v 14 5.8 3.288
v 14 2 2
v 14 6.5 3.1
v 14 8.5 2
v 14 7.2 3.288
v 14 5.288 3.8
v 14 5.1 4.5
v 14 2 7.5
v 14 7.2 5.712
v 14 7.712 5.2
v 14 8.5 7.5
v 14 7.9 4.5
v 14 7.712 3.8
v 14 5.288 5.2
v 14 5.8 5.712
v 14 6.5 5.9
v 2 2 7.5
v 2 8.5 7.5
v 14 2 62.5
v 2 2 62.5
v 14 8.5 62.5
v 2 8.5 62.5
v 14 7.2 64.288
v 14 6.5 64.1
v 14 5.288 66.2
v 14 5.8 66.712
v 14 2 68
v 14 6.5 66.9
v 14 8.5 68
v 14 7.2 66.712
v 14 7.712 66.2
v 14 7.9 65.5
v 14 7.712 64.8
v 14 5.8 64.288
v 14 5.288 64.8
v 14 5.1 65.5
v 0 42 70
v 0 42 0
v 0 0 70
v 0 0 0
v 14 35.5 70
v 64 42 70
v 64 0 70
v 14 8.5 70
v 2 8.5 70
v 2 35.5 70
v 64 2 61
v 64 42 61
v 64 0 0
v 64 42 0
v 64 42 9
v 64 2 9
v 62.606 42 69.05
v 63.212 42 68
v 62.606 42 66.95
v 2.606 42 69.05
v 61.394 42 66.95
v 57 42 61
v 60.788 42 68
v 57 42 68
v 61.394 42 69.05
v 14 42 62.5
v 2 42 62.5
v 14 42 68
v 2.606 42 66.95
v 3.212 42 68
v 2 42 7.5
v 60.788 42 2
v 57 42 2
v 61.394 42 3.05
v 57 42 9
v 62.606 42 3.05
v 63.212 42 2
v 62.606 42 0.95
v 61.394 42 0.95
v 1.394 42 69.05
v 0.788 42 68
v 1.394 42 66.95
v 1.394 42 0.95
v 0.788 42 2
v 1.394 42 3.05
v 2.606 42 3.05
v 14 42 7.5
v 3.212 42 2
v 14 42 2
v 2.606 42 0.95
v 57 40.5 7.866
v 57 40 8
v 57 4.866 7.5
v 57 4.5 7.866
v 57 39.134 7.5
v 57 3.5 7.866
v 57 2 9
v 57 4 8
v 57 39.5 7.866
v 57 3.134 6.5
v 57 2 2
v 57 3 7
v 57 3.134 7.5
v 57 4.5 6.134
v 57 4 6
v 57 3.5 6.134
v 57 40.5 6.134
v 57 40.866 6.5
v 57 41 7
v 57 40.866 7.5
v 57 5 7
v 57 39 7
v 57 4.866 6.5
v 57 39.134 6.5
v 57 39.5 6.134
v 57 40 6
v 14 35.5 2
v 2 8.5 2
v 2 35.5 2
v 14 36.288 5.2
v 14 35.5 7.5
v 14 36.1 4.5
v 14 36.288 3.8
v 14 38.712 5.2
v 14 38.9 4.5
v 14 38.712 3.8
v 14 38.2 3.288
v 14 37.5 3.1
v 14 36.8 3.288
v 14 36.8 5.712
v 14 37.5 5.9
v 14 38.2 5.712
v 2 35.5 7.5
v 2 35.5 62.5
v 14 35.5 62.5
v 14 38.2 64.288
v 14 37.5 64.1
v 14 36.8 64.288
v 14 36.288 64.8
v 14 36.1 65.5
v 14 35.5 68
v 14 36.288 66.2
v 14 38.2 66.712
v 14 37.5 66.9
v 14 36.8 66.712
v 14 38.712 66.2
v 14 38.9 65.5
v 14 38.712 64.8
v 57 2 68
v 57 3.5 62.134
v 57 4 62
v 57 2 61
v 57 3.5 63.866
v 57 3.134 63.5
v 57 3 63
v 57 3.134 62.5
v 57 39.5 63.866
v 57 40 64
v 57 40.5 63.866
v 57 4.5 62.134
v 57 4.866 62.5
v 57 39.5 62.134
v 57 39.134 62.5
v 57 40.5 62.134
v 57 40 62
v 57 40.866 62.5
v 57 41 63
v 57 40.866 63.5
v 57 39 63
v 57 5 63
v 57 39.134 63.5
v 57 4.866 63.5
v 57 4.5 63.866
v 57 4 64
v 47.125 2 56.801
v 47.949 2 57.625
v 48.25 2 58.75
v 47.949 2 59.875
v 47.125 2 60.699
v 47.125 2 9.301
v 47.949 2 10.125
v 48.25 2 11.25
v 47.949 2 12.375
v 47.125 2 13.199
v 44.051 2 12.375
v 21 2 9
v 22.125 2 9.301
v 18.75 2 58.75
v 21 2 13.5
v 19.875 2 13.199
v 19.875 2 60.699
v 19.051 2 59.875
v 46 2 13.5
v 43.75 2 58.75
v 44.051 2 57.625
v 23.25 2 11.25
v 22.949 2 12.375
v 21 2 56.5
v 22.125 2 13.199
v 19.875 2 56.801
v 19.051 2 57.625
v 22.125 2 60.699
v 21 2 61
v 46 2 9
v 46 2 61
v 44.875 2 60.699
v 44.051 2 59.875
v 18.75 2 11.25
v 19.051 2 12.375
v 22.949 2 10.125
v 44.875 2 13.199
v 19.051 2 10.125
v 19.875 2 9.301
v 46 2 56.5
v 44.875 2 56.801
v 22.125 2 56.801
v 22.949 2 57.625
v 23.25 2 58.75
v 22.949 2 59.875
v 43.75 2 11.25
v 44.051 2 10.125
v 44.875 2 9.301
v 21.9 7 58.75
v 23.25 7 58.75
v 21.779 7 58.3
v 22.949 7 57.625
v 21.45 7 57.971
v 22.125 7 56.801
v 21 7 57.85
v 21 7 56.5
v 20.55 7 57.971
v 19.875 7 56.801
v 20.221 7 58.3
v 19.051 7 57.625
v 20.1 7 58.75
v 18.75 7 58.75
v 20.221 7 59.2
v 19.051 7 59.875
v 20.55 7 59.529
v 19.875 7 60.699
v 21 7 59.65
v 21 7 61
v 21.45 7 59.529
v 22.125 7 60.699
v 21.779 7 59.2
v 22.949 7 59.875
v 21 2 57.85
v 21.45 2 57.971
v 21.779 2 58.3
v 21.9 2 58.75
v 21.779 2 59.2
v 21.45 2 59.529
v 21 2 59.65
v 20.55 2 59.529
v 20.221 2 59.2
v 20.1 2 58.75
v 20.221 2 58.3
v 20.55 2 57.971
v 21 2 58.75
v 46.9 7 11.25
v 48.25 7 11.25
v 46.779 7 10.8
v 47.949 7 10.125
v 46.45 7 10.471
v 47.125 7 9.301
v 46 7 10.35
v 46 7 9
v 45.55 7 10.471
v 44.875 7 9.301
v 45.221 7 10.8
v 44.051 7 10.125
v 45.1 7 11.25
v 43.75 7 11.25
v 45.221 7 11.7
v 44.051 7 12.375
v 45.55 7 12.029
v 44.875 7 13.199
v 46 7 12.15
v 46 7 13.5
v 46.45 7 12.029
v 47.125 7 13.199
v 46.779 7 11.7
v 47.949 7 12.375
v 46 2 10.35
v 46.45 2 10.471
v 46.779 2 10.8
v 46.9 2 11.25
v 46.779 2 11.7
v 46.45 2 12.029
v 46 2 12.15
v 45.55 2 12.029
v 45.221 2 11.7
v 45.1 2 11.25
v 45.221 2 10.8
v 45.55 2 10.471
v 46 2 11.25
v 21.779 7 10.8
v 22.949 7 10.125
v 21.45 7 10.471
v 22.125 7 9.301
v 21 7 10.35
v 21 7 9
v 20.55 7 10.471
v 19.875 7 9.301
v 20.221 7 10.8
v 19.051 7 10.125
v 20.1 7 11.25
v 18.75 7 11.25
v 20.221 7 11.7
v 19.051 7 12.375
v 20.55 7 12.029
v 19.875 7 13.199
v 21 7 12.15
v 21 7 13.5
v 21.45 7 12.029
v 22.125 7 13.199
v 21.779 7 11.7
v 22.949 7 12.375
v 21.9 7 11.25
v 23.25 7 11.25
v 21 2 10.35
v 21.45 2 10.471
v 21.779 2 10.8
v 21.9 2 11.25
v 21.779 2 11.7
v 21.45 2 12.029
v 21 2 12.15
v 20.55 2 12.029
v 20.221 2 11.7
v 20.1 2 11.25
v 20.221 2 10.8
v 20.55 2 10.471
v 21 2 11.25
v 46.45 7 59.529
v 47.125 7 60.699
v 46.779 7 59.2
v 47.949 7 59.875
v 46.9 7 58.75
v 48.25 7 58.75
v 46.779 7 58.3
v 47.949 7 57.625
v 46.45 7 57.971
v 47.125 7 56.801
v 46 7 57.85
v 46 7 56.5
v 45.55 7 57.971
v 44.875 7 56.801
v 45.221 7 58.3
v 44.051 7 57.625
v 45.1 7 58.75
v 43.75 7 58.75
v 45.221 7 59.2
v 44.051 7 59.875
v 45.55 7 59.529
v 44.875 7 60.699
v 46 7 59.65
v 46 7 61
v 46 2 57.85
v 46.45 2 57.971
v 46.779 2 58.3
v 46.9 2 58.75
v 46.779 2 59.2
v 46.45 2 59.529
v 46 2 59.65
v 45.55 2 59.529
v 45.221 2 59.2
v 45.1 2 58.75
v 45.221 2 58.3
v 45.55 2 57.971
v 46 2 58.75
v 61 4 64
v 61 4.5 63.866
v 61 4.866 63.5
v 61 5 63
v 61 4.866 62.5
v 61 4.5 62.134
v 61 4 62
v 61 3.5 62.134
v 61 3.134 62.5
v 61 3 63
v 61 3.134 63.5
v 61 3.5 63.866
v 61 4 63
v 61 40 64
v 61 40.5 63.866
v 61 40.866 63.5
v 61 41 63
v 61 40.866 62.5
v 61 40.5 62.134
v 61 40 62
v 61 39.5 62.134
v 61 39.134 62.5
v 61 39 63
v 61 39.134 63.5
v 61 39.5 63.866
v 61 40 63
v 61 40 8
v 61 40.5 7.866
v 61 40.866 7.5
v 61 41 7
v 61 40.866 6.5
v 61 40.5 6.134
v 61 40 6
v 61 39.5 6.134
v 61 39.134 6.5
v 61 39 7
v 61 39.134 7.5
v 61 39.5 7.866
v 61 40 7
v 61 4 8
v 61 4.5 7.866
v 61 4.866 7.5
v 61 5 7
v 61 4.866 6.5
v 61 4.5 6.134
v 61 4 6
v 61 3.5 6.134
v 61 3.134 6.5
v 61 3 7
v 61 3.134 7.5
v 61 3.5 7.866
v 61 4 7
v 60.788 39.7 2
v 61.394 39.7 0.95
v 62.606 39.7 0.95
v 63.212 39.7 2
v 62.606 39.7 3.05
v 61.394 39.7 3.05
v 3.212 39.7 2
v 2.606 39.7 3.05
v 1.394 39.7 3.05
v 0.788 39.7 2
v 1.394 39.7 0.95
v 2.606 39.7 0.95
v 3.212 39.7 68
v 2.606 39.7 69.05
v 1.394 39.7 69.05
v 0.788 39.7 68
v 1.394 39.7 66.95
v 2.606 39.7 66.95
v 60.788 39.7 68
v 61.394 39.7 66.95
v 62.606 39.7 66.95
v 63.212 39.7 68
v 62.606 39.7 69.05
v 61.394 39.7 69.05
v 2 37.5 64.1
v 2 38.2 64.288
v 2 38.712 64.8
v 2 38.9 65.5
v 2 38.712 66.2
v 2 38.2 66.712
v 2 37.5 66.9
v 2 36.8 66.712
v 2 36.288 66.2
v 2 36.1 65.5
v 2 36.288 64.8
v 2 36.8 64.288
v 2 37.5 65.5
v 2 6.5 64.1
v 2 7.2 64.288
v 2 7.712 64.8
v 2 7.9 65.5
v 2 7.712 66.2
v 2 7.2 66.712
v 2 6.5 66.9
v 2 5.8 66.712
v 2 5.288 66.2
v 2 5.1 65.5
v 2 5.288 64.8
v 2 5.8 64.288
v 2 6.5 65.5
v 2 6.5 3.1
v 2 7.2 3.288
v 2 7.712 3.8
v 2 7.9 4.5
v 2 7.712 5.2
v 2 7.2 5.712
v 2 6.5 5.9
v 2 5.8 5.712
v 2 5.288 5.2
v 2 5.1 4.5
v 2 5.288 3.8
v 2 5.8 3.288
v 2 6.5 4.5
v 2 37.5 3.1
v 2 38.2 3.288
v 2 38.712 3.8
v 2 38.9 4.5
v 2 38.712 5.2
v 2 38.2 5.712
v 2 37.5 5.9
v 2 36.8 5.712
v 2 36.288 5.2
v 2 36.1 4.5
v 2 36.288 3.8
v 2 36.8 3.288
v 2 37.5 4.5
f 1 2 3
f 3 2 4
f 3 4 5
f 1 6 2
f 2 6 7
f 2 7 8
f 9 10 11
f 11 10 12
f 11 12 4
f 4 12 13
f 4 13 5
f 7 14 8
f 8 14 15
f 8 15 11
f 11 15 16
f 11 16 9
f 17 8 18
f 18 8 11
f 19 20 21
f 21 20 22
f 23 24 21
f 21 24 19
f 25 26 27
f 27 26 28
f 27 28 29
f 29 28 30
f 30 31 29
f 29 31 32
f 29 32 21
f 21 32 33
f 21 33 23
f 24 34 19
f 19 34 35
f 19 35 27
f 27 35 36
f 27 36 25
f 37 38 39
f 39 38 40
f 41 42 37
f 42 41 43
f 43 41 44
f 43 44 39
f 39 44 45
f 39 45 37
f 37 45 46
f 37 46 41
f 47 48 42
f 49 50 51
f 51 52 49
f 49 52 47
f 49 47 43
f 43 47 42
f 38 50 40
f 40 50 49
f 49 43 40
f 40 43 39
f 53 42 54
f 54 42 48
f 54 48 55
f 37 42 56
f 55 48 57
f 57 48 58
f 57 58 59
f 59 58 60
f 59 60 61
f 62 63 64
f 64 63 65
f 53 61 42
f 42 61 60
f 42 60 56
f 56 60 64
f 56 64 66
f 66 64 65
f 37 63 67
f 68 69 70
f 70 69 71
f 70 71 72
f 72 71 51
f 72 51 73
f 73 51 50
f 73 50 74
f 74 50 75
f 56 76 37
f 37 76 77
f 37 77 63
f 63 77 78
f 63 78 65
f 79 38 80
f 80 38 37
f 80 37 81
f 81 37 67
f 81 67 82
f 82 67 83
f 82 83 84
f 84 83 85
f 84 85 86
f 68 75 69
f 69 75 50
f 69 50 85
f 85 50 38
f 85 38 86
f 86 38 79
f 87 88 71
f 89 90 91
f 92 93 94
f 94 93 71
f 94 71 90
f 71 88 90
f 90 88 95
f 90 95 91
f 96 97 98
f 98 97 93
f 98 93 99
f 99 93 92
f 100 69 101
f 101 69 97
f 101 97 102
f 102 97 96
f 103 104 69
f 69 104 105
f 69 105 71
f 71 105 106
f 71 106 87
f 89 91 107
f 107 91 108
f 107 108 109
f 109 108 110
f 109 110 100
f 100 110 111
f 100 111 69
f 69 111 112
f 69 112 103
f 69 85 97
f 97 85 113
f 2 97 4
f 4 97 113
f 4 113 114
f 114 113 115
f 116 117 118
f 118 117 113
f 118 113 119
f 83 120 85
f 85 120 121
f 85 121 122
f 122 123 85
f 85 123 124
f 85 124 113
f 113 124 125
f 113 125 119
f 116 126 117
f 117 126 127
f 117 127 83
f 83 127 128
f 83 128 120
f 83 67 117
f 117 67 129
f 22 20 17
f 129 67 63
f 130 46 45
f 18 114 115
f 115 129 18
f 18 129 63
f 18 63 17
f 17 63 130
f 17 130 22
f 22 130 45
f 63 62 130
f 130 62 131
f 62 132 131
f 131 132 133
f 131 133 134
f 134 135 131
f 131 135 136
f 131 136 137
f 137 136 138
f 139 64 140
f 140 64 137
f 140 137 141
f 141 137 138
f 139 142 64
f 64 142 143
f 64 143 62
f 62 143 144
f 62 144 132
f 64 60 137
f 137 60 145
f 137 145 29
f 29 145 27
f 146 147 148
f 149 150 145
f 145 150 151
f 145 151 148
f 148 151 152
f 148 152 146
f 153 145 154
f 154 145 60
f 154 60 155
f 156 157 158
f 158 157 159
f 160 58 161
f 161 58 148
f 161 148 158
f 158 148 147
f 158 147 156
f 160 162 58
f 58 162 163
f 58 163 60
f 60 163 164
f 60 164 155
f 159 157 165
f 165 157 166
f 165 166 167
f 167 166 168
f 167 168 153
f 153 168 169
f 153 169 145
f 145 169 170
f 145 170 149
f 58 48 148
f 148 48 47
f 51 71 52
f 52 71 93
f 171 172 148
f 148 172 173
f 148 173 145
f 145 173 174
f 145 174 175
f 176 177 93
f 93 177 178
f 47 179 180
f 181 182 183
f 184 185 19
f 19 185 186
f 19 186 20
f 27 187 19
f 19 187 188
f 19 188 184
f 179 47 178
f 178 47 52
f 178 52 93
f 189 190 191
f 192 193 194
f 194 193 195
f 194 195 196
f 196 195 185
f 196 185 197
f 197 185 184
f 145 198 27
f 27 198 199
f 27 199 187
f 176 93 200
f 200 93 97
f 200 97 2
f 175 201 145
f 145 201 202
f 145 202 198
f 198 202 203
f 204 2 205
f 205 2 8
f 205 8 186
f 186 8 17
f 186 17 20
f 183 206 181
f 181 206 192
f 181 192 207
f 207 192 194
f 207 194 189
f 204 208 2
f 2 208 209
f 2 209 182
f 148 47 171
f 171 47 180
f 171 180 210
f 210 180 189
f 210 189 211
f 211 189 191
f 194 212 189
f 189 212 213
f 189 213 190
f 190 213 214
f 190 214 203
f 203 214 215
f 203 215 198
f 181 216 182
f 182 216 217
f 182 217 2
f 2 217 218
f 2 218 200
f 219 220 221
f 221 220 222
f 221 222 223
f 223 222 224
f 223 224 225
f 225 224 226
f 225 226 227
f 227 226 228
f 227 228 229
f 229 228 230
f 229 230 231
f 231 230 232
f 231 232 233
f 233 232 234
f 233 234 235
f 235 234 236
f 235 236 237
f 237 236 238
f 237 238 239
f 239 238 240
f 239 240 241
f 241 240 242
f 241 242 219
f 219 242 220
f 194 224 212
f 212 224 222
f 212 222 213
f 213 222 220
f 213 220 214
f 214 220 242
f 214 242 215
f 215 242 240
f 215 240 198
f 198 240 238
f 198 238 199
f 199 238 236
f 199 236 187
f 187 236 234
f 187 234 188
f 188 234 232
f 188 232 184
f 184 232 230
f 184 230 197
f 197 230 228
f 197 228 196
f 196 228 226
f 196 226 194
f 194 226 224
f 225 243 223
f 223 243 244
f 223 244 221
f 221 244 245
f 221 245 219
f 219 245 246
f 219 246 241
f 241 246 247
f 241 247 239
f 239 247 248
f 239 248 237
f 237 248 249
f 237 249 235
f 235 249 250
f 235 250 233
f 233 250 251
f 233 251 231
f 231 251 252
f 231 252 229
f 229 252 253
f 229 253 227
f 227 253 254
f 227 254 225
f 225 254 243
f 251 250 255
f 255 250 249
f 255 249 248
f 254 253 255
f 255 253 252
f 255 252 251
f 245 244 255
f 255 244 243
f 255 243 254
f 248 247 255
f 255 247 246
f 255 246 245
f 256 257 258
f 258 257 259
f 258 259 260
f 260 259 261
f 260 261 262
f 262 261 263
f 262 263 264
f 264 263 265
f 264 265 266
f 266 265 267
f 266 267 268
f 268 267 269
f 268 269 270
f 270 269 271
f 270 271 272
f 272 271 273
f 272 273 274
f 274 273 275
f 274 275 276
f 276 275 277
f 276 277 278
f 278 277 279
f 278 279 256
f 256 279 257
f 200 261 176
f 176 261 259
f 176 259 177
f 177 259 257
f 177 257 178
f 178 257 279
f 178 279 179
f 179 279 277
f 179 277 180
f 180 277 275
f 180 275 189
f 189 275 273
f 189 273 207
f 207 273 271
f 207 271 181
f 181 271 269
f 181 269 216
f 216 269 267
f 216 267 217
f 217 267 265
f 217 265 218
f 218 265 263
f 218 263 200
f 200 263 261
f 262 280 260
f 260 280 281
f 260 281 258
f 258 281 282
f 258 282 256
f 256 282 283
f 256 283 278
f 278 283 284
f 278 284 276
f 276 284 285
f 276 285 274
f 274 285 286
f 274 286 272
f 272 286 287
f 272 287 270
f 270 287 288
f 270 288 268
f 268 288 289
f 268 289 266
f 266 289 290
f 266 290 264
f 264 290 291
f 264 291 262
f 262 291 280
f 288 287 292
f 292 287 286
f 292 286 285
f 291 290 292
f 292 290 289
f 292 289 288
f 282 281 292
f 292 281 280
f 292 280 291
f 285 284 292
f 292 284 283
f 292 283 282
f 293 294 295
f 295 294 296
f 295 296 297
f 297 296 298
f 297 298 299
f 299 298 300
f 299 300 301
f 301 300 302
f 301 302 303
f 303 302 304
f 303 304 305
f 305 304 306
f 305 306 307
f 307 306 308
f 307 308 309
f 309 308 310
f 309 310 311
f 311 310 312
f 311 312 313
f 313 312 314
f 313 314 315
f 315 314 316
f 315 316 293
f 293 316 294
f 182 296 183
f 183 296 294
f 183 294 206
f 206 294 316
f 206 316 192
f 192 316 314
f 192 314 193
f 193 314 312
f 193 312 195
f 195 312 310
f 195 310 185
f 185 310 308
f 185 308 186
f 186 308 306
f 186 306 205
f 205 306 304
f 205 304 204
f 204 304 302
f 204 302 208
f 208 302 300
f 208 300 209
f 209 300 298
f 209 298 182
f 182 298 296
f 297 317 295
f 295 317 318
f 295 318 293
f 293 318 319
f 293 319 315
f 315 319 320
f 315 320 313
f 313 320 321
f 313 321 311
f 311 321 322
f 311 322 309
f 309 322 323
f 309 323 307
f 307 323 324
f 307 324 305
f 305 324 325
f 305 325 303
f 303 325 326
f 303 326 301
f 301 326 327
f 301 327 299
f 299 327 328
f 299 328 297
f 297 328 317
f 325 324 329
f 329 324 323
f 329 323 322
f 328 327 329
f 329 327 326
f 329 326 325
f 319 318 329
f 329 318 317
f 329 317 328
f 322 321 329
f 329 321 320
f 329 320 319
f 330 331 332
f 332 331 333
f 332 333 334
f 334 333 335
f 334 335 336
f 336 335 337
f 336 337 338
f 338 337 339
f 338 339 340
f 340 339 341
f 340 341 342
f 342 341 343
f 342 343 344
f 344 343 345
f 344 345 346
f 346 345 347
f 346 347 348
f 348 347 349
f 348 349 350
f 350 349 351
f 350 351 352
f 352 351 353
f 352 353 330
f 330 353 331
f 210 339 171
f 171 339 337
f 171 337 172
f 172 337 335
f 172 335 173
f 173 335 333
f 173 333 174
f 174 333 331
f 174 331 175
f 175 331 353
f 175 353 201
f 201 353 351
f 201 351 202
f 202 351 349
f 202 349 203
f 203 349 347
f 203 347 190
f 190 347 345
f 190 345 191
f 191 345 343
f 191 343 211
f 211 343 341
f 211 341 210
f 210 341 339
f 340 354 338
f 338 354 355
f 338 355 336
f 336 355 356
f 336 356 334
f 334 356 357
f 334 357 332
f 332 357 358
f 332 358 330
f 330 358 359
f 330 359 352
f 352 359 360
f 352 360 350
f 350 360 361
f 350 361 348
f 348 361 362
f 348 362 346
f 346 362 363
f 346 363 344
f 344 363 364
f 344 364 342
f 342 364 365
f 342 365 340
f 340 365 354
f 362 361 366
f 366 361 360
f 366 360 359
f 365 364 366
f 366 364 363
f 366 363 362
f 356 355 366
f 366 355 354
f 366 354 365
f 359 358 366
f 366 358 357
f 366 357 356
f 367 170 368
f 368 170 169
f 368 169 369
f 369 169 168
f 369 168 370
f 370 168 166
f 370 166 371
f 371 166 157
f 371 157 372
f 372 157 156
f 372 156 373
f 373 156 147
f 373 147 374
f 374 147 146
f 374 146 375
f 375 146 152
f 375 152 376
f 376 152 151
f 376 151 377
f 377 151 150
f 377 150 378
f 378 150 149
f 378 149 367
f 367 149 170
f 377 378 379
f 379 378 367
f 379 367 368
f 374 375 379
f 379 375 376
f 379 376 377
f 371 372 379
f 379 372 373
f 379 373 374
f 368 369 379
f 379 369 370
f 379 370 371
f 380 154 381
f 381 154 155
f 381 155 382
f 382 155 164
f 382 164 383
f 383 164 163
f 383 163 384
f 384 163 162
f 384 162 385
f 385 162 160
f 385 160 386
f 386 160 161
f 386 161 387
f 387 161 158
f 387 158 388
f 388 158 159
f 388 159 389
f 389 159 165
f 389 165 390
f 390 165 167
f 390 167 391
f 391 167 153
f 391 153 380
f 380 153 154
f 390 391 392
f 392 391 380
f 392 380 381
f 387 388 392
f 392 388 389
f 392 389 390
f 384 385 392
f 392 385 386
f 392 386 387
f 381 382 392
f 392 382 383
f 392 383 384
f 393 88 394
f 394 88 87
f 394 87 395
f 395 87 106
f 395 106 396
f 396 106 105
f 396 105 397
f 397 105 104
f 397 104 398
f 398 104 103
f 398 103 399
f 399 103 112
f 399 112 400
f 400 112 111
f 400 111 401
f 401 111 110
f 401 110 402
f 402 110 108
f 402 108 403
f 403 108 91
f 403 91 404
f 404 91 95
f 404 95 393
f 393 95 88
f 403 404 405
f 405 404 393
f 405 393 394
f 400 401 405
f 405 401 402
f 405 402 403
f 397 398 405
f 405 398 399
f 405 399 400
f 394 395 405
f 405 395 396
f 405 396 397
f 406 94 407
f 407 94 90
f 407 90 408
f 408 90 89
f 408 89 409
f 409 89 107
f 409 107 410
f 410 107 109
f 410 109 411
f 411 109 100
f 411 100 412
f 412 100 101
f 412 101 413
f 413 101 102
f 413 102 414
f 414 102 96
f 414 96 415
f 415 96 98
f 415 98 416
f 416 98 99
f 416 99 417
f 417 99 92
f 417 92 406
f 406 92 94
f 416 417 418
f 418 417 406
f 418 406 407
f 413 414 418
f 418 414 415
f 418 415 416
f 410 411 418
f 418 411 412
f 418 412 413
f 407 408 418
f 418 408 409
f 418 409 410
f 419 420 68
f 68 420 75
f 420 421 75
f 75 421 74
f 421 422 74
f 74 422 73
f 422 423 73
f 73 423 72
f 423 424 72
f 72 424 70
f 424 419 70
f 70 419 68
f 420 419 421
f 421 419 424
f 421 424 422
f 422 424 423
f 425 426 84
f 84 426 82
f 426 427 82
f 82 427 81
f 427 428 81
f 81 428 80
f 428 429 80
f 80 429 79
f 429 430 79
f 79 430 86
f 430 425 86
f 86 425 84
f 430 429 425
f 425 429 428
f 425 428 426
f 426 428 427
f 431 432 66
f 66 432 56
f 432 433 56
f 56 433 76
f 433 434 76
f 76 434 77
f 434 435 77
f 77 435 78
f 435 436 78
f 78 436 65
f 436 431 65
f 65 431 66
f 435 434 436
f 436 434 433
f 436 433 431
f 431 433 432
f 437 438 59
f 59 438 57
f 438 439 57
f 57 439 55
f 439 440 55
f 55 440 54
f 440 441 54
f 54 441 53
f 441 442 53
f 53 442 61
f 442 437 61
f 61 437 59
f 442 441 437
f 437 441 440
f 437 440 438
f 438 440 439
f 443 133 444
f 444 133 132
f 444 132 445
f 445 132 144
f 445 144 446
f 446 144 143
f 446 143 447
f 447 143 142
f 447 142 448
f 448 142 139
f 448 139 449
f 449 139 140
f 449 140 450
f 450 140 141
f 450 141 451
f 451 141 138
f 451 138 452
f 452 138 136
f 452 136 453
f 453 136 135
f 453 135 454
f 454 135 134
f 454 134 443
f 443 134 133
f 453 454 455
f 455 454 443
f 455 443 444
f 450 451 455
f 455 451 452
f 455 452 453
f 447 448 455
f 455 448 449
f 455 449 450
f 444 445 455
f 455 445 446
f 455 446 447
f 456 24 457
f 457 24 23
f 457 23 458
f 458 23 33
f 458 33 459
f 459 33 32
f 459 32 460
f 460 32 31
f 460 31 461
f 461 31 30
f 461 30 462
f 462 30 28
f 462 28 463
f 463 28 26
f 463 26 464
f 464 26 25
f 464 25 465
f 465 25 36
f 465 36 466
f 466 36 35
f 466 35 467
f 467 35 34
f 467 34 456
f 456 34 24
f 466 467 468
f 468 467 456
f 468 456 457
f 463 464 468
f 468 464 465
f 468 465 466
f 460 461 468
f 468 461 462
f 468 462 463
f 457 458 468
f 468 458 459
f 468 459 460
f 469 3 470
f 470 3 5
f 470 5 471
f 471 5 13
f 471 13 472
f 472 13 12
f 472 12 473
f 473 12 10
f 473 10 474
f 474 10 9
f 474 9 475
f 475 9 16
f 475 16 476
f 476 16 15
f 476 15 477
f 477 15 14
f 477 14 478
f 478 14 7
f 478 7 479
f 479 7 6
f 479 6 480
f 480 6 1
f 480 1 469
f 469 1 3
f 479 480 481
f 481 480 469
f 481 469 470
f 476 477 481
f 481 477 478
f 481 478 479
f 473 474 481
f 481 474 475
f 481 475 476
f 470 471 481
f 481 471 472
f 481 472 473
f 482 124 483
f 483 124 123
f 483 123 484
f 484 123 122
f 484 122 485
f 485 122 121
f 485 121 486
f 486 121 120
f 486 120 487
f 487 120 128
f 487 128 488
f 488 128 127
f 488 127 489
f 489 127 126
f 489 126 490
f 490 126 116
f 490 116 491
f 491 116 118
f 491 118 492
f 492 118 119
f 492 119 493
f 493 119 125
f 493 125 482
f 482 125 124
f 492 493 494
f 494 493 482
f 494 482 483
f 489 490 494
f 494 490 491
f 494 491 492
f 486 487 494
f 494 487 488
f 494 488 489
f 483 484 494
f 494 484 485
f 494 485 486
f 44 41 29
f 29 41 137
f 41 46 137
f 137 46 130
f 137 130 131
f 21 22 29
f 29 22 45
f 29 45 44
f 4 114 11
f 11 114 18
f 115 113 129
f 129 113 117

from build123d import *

# Parameters (mm, degrees)
SKETCH1_W           = 64
SKETCH1_H           = 70
BOSS_EXTRUDE1_DEPTH = 2
SKETCH2_W           = 64
SKETCH2_H           = 70
BOSS_EXTRUDE2_DEPTH = 40
SKETCH3_R           = 2.25
SKETCH3_R_2         = 0.9
BOSS_EXTRUDE3_DEPTH = 5
SKETCH4_W           = 52
SKETCH4_H           = 40
CUT_EXTRUDE1_DEPTH  = 2
SKETCH5_R           = 1
CUT_EXTRUDE4_DEPTH  = 4
CUT_EXTRUDE5_DEPTH  = 2.3
SKETCH7_R           = 1.4
CUT_EXTRUDE6_DEPTH  = 12
CUT_EXTRUDE7_REACH  = 105.73
SKETCH8_W           = 12
SKETCH8_H           = 27


with BuildPart() as part:
    # Sketch1 → Boss-Extrude1 (new body)
    with BuildSketch(Plane(origin=(0, 0, 0), x_dir=(1, 0, 0), z_dir=(0, 1, 0))):
        with Locations((32, -35)):
            Rectangle(SKETCH1_W, SKETCH1_H)
    extrude(amount=BOSS_EXTRUDE1_DEPTH)

    # Sketch2 → Boss-Extrude2 (add)
    with BuildSketch(Plane(origin=(0, 2, 0), x_dir=(1, 0, 0), z_dir=(0, 1, 0))):
        with Locations((32, -35)):
            Rectangle(SKETCH2_W, SKETCH2_H)
        Polygon((14, -2), (57, -2), (57, -9), (62, -9), (62, -61), (57, -61), (57, -68), (14, -68), (14, -62.5), (2, -62.5), (2, -7.5), (14, -7.5), align=None, mode=Mode.SUBTRACT)
    extrude(amount=BOSS_EXTRUDE2_DEPTH)

    # Sketch3 → Boss-Extrude3 (add)
    # profile 1 of 4: a face of its own
    with BuildSketch(Plane(origin=(0, 2, 0), x_dir=(1, 0, 0), z_dir=(0, 1, 0))):
        with Locations(Location((21, -58.75, 0), (0, 0, 270))):
            Circle(SKETCH3_R)
        with Locations(Location((21, -58.75, 0), (0, 0, 270))):
            Circle(SKETCH3_R_2, mode=Mode.SUBTRACT)
    # profile 2 of 4: a face of its own
    with BuildSketch(Plane(origin=(0, 2, 0), x_dir=(1, 0, 0), z_dir=(0, 1, 0))):
        with Locations(Location((46, -58.75, 0), (0, 0, 270))):
            Circle(SKETCH3_R)
        with Locations(Location((46, -58.75, 0), (0, 0, 270))):
            Circle(SKETCH3_R_2, mode=Mode.SUBTRACT)
    # profile 3 of 4: a face of its own
    with BuildSketch(Plane(origin=(0, 2, 0), x_dir=(1, 0, 0), z_dir=(0, 1, 0))):
        with Locations(Location((21, -11.25, 0), (0, 0, 270))):
            Circle(SKETCH3_R)
        with Locations(Location((21, -11.25, 0), (0, 0, 270))):
            Circle(SKETCH3_R_2, mode=Mode.SUBTRACT)
    # profile 4 of 4: a face of its own
    with BuildSketch(Plane(origin=(0, 2, 0), x_dir=(1, 0, 0), z_dir=(0, 1, 0))):
        with Locations(Location((46, -11.25, 0), (0, 0, 270))):
            Circle(SKETCH3_R)
        with Locations(Location((46, -11.25, 0), (0, 0, 270))):
            Circle(SKETCH3_R_2, mode=Mode.SUBTRACT)
    extrude(amount=BOSS_EXTRUDE3_DEPTH)

    # Sketch4 → Cut-Extrude1 (cut)
    with BuildSketch(Plane(origin=(64, 0, 0), x_dir=(0, 0, -1), z_dir=(1, 0, 0))):
        with Locations((-35, 22)):
            Rectangle(SKETCH4_W, SKETCH4_H)
    extrude(amount=-CUT_EXTRUDE1_DEPTH, mode=Mode.SUBTRACT)

    # Sketch5 → Cut-Extrude4 (cut)
    with BuildSketch(Plane.ZY.offset(-57)):
        with Locations((7, 40)):
            Circle(SKETCH5_R)
        with Locations((7, 4)):
            Circle(SKETCH5_R)
        with Locations((63, 4)):
            Circle(SKETCH5_R)
        with Locations((63, 40)):
            Circle(SKETCH5_R)
    extrude(amount=-CUT_EXTRUDE4_DEPTH, mode=Mode.SUBTRACT)

    # Sketch6 → Cut-Extrude5 (cut)
    with BuildSketch(Plane(origin=(0, 42, 0), x_dir=(1, 0, 0), z_dir=(0, 1, 0))):
        Polygon((3.212435565, -2), (2.606217783, -0.95), (1.393782217, -0.95), (0.787564435, -2), (1.393782217, -3.05), (2.606217783, -3.05), align=None)
        Polygon((3.212435565, -68), (2.606217783, -66.95), (1.393782217, -66.95), (0.787564435, -68), (1.393782217, -69.05), (2.606217783, -69.05), align=None)
        Polygon((60.787564435, -68), (61.393782217, -69.05), (62.606217783, -69.05), (63.212435565, -68), (62.606217783, -66.95), (61.393782217, -66.95), align=None)
        Polygon((60.787564435, -2), (61.393782217, -3.05), (62.606217783, -3.05), (63.212435565, -2), (62.606217783, -0.95), (61.393782217, -0.95), align=None)
    extrude(amount=-CUT_EXTRUDE5_DEPTH, mode=Mode.SUBTRACT)

    # Sketch7 → Cut-Extrude6 (cut)
    with BuildSketch(Plane(origin=(14, 0, 0), x_dir=(0, 0, -1), z_dir=(1, 0, 0))):
        with Locations((-65.5, 37.5)):
            Circle(SKETCH7_R)
        with Locations((-4.5, 37.5)):
            Circle(SKETCH7_R)
        with Locations((-65.5, 6.5)):
            Circle(SKETCH7_R)
        with Locations((-4.5, 6.5)):
            Circle(SKETCH7_R)
    extrude(amount=-CUT_EXTRUDE6_DEPTH, mode=Mode.SUBTRACT)

    # Cut-Extrude7: up to this face of the body (flat: up to its plane)
    cut_extrude7_end = Plane(part.part.faces().sort_by_distance((35.5, 22, 2))[0])
    # Sketch8 → Cut-Extrude7 (cut, up to the picked face)
    with BuildSketch(Plane.XY.offset(70), mode=Mode.PRIVATE) as cut_extrude7_sk1:
        with Locations((8, 22)):
            Rectangle(SKETCH8_W, SKETCH8_H)
    cut_extrude7_tool1 = split(extrude(cut_extrude7_sk1.sketch, amount=-CUT_EXTRUDE7_REACH, mode=Mode.PRIVATE), bisect_by=cut_extrude7_end, keep=Keep.BOTH, mode=Mode.PRIVATE)
    add(cut_extrude7_tool1.solids().sort_by(Axis((8, 22, 70), (0, 0, -1)))[0], mode=Mode.SUBTRACT)


solid = part.part
